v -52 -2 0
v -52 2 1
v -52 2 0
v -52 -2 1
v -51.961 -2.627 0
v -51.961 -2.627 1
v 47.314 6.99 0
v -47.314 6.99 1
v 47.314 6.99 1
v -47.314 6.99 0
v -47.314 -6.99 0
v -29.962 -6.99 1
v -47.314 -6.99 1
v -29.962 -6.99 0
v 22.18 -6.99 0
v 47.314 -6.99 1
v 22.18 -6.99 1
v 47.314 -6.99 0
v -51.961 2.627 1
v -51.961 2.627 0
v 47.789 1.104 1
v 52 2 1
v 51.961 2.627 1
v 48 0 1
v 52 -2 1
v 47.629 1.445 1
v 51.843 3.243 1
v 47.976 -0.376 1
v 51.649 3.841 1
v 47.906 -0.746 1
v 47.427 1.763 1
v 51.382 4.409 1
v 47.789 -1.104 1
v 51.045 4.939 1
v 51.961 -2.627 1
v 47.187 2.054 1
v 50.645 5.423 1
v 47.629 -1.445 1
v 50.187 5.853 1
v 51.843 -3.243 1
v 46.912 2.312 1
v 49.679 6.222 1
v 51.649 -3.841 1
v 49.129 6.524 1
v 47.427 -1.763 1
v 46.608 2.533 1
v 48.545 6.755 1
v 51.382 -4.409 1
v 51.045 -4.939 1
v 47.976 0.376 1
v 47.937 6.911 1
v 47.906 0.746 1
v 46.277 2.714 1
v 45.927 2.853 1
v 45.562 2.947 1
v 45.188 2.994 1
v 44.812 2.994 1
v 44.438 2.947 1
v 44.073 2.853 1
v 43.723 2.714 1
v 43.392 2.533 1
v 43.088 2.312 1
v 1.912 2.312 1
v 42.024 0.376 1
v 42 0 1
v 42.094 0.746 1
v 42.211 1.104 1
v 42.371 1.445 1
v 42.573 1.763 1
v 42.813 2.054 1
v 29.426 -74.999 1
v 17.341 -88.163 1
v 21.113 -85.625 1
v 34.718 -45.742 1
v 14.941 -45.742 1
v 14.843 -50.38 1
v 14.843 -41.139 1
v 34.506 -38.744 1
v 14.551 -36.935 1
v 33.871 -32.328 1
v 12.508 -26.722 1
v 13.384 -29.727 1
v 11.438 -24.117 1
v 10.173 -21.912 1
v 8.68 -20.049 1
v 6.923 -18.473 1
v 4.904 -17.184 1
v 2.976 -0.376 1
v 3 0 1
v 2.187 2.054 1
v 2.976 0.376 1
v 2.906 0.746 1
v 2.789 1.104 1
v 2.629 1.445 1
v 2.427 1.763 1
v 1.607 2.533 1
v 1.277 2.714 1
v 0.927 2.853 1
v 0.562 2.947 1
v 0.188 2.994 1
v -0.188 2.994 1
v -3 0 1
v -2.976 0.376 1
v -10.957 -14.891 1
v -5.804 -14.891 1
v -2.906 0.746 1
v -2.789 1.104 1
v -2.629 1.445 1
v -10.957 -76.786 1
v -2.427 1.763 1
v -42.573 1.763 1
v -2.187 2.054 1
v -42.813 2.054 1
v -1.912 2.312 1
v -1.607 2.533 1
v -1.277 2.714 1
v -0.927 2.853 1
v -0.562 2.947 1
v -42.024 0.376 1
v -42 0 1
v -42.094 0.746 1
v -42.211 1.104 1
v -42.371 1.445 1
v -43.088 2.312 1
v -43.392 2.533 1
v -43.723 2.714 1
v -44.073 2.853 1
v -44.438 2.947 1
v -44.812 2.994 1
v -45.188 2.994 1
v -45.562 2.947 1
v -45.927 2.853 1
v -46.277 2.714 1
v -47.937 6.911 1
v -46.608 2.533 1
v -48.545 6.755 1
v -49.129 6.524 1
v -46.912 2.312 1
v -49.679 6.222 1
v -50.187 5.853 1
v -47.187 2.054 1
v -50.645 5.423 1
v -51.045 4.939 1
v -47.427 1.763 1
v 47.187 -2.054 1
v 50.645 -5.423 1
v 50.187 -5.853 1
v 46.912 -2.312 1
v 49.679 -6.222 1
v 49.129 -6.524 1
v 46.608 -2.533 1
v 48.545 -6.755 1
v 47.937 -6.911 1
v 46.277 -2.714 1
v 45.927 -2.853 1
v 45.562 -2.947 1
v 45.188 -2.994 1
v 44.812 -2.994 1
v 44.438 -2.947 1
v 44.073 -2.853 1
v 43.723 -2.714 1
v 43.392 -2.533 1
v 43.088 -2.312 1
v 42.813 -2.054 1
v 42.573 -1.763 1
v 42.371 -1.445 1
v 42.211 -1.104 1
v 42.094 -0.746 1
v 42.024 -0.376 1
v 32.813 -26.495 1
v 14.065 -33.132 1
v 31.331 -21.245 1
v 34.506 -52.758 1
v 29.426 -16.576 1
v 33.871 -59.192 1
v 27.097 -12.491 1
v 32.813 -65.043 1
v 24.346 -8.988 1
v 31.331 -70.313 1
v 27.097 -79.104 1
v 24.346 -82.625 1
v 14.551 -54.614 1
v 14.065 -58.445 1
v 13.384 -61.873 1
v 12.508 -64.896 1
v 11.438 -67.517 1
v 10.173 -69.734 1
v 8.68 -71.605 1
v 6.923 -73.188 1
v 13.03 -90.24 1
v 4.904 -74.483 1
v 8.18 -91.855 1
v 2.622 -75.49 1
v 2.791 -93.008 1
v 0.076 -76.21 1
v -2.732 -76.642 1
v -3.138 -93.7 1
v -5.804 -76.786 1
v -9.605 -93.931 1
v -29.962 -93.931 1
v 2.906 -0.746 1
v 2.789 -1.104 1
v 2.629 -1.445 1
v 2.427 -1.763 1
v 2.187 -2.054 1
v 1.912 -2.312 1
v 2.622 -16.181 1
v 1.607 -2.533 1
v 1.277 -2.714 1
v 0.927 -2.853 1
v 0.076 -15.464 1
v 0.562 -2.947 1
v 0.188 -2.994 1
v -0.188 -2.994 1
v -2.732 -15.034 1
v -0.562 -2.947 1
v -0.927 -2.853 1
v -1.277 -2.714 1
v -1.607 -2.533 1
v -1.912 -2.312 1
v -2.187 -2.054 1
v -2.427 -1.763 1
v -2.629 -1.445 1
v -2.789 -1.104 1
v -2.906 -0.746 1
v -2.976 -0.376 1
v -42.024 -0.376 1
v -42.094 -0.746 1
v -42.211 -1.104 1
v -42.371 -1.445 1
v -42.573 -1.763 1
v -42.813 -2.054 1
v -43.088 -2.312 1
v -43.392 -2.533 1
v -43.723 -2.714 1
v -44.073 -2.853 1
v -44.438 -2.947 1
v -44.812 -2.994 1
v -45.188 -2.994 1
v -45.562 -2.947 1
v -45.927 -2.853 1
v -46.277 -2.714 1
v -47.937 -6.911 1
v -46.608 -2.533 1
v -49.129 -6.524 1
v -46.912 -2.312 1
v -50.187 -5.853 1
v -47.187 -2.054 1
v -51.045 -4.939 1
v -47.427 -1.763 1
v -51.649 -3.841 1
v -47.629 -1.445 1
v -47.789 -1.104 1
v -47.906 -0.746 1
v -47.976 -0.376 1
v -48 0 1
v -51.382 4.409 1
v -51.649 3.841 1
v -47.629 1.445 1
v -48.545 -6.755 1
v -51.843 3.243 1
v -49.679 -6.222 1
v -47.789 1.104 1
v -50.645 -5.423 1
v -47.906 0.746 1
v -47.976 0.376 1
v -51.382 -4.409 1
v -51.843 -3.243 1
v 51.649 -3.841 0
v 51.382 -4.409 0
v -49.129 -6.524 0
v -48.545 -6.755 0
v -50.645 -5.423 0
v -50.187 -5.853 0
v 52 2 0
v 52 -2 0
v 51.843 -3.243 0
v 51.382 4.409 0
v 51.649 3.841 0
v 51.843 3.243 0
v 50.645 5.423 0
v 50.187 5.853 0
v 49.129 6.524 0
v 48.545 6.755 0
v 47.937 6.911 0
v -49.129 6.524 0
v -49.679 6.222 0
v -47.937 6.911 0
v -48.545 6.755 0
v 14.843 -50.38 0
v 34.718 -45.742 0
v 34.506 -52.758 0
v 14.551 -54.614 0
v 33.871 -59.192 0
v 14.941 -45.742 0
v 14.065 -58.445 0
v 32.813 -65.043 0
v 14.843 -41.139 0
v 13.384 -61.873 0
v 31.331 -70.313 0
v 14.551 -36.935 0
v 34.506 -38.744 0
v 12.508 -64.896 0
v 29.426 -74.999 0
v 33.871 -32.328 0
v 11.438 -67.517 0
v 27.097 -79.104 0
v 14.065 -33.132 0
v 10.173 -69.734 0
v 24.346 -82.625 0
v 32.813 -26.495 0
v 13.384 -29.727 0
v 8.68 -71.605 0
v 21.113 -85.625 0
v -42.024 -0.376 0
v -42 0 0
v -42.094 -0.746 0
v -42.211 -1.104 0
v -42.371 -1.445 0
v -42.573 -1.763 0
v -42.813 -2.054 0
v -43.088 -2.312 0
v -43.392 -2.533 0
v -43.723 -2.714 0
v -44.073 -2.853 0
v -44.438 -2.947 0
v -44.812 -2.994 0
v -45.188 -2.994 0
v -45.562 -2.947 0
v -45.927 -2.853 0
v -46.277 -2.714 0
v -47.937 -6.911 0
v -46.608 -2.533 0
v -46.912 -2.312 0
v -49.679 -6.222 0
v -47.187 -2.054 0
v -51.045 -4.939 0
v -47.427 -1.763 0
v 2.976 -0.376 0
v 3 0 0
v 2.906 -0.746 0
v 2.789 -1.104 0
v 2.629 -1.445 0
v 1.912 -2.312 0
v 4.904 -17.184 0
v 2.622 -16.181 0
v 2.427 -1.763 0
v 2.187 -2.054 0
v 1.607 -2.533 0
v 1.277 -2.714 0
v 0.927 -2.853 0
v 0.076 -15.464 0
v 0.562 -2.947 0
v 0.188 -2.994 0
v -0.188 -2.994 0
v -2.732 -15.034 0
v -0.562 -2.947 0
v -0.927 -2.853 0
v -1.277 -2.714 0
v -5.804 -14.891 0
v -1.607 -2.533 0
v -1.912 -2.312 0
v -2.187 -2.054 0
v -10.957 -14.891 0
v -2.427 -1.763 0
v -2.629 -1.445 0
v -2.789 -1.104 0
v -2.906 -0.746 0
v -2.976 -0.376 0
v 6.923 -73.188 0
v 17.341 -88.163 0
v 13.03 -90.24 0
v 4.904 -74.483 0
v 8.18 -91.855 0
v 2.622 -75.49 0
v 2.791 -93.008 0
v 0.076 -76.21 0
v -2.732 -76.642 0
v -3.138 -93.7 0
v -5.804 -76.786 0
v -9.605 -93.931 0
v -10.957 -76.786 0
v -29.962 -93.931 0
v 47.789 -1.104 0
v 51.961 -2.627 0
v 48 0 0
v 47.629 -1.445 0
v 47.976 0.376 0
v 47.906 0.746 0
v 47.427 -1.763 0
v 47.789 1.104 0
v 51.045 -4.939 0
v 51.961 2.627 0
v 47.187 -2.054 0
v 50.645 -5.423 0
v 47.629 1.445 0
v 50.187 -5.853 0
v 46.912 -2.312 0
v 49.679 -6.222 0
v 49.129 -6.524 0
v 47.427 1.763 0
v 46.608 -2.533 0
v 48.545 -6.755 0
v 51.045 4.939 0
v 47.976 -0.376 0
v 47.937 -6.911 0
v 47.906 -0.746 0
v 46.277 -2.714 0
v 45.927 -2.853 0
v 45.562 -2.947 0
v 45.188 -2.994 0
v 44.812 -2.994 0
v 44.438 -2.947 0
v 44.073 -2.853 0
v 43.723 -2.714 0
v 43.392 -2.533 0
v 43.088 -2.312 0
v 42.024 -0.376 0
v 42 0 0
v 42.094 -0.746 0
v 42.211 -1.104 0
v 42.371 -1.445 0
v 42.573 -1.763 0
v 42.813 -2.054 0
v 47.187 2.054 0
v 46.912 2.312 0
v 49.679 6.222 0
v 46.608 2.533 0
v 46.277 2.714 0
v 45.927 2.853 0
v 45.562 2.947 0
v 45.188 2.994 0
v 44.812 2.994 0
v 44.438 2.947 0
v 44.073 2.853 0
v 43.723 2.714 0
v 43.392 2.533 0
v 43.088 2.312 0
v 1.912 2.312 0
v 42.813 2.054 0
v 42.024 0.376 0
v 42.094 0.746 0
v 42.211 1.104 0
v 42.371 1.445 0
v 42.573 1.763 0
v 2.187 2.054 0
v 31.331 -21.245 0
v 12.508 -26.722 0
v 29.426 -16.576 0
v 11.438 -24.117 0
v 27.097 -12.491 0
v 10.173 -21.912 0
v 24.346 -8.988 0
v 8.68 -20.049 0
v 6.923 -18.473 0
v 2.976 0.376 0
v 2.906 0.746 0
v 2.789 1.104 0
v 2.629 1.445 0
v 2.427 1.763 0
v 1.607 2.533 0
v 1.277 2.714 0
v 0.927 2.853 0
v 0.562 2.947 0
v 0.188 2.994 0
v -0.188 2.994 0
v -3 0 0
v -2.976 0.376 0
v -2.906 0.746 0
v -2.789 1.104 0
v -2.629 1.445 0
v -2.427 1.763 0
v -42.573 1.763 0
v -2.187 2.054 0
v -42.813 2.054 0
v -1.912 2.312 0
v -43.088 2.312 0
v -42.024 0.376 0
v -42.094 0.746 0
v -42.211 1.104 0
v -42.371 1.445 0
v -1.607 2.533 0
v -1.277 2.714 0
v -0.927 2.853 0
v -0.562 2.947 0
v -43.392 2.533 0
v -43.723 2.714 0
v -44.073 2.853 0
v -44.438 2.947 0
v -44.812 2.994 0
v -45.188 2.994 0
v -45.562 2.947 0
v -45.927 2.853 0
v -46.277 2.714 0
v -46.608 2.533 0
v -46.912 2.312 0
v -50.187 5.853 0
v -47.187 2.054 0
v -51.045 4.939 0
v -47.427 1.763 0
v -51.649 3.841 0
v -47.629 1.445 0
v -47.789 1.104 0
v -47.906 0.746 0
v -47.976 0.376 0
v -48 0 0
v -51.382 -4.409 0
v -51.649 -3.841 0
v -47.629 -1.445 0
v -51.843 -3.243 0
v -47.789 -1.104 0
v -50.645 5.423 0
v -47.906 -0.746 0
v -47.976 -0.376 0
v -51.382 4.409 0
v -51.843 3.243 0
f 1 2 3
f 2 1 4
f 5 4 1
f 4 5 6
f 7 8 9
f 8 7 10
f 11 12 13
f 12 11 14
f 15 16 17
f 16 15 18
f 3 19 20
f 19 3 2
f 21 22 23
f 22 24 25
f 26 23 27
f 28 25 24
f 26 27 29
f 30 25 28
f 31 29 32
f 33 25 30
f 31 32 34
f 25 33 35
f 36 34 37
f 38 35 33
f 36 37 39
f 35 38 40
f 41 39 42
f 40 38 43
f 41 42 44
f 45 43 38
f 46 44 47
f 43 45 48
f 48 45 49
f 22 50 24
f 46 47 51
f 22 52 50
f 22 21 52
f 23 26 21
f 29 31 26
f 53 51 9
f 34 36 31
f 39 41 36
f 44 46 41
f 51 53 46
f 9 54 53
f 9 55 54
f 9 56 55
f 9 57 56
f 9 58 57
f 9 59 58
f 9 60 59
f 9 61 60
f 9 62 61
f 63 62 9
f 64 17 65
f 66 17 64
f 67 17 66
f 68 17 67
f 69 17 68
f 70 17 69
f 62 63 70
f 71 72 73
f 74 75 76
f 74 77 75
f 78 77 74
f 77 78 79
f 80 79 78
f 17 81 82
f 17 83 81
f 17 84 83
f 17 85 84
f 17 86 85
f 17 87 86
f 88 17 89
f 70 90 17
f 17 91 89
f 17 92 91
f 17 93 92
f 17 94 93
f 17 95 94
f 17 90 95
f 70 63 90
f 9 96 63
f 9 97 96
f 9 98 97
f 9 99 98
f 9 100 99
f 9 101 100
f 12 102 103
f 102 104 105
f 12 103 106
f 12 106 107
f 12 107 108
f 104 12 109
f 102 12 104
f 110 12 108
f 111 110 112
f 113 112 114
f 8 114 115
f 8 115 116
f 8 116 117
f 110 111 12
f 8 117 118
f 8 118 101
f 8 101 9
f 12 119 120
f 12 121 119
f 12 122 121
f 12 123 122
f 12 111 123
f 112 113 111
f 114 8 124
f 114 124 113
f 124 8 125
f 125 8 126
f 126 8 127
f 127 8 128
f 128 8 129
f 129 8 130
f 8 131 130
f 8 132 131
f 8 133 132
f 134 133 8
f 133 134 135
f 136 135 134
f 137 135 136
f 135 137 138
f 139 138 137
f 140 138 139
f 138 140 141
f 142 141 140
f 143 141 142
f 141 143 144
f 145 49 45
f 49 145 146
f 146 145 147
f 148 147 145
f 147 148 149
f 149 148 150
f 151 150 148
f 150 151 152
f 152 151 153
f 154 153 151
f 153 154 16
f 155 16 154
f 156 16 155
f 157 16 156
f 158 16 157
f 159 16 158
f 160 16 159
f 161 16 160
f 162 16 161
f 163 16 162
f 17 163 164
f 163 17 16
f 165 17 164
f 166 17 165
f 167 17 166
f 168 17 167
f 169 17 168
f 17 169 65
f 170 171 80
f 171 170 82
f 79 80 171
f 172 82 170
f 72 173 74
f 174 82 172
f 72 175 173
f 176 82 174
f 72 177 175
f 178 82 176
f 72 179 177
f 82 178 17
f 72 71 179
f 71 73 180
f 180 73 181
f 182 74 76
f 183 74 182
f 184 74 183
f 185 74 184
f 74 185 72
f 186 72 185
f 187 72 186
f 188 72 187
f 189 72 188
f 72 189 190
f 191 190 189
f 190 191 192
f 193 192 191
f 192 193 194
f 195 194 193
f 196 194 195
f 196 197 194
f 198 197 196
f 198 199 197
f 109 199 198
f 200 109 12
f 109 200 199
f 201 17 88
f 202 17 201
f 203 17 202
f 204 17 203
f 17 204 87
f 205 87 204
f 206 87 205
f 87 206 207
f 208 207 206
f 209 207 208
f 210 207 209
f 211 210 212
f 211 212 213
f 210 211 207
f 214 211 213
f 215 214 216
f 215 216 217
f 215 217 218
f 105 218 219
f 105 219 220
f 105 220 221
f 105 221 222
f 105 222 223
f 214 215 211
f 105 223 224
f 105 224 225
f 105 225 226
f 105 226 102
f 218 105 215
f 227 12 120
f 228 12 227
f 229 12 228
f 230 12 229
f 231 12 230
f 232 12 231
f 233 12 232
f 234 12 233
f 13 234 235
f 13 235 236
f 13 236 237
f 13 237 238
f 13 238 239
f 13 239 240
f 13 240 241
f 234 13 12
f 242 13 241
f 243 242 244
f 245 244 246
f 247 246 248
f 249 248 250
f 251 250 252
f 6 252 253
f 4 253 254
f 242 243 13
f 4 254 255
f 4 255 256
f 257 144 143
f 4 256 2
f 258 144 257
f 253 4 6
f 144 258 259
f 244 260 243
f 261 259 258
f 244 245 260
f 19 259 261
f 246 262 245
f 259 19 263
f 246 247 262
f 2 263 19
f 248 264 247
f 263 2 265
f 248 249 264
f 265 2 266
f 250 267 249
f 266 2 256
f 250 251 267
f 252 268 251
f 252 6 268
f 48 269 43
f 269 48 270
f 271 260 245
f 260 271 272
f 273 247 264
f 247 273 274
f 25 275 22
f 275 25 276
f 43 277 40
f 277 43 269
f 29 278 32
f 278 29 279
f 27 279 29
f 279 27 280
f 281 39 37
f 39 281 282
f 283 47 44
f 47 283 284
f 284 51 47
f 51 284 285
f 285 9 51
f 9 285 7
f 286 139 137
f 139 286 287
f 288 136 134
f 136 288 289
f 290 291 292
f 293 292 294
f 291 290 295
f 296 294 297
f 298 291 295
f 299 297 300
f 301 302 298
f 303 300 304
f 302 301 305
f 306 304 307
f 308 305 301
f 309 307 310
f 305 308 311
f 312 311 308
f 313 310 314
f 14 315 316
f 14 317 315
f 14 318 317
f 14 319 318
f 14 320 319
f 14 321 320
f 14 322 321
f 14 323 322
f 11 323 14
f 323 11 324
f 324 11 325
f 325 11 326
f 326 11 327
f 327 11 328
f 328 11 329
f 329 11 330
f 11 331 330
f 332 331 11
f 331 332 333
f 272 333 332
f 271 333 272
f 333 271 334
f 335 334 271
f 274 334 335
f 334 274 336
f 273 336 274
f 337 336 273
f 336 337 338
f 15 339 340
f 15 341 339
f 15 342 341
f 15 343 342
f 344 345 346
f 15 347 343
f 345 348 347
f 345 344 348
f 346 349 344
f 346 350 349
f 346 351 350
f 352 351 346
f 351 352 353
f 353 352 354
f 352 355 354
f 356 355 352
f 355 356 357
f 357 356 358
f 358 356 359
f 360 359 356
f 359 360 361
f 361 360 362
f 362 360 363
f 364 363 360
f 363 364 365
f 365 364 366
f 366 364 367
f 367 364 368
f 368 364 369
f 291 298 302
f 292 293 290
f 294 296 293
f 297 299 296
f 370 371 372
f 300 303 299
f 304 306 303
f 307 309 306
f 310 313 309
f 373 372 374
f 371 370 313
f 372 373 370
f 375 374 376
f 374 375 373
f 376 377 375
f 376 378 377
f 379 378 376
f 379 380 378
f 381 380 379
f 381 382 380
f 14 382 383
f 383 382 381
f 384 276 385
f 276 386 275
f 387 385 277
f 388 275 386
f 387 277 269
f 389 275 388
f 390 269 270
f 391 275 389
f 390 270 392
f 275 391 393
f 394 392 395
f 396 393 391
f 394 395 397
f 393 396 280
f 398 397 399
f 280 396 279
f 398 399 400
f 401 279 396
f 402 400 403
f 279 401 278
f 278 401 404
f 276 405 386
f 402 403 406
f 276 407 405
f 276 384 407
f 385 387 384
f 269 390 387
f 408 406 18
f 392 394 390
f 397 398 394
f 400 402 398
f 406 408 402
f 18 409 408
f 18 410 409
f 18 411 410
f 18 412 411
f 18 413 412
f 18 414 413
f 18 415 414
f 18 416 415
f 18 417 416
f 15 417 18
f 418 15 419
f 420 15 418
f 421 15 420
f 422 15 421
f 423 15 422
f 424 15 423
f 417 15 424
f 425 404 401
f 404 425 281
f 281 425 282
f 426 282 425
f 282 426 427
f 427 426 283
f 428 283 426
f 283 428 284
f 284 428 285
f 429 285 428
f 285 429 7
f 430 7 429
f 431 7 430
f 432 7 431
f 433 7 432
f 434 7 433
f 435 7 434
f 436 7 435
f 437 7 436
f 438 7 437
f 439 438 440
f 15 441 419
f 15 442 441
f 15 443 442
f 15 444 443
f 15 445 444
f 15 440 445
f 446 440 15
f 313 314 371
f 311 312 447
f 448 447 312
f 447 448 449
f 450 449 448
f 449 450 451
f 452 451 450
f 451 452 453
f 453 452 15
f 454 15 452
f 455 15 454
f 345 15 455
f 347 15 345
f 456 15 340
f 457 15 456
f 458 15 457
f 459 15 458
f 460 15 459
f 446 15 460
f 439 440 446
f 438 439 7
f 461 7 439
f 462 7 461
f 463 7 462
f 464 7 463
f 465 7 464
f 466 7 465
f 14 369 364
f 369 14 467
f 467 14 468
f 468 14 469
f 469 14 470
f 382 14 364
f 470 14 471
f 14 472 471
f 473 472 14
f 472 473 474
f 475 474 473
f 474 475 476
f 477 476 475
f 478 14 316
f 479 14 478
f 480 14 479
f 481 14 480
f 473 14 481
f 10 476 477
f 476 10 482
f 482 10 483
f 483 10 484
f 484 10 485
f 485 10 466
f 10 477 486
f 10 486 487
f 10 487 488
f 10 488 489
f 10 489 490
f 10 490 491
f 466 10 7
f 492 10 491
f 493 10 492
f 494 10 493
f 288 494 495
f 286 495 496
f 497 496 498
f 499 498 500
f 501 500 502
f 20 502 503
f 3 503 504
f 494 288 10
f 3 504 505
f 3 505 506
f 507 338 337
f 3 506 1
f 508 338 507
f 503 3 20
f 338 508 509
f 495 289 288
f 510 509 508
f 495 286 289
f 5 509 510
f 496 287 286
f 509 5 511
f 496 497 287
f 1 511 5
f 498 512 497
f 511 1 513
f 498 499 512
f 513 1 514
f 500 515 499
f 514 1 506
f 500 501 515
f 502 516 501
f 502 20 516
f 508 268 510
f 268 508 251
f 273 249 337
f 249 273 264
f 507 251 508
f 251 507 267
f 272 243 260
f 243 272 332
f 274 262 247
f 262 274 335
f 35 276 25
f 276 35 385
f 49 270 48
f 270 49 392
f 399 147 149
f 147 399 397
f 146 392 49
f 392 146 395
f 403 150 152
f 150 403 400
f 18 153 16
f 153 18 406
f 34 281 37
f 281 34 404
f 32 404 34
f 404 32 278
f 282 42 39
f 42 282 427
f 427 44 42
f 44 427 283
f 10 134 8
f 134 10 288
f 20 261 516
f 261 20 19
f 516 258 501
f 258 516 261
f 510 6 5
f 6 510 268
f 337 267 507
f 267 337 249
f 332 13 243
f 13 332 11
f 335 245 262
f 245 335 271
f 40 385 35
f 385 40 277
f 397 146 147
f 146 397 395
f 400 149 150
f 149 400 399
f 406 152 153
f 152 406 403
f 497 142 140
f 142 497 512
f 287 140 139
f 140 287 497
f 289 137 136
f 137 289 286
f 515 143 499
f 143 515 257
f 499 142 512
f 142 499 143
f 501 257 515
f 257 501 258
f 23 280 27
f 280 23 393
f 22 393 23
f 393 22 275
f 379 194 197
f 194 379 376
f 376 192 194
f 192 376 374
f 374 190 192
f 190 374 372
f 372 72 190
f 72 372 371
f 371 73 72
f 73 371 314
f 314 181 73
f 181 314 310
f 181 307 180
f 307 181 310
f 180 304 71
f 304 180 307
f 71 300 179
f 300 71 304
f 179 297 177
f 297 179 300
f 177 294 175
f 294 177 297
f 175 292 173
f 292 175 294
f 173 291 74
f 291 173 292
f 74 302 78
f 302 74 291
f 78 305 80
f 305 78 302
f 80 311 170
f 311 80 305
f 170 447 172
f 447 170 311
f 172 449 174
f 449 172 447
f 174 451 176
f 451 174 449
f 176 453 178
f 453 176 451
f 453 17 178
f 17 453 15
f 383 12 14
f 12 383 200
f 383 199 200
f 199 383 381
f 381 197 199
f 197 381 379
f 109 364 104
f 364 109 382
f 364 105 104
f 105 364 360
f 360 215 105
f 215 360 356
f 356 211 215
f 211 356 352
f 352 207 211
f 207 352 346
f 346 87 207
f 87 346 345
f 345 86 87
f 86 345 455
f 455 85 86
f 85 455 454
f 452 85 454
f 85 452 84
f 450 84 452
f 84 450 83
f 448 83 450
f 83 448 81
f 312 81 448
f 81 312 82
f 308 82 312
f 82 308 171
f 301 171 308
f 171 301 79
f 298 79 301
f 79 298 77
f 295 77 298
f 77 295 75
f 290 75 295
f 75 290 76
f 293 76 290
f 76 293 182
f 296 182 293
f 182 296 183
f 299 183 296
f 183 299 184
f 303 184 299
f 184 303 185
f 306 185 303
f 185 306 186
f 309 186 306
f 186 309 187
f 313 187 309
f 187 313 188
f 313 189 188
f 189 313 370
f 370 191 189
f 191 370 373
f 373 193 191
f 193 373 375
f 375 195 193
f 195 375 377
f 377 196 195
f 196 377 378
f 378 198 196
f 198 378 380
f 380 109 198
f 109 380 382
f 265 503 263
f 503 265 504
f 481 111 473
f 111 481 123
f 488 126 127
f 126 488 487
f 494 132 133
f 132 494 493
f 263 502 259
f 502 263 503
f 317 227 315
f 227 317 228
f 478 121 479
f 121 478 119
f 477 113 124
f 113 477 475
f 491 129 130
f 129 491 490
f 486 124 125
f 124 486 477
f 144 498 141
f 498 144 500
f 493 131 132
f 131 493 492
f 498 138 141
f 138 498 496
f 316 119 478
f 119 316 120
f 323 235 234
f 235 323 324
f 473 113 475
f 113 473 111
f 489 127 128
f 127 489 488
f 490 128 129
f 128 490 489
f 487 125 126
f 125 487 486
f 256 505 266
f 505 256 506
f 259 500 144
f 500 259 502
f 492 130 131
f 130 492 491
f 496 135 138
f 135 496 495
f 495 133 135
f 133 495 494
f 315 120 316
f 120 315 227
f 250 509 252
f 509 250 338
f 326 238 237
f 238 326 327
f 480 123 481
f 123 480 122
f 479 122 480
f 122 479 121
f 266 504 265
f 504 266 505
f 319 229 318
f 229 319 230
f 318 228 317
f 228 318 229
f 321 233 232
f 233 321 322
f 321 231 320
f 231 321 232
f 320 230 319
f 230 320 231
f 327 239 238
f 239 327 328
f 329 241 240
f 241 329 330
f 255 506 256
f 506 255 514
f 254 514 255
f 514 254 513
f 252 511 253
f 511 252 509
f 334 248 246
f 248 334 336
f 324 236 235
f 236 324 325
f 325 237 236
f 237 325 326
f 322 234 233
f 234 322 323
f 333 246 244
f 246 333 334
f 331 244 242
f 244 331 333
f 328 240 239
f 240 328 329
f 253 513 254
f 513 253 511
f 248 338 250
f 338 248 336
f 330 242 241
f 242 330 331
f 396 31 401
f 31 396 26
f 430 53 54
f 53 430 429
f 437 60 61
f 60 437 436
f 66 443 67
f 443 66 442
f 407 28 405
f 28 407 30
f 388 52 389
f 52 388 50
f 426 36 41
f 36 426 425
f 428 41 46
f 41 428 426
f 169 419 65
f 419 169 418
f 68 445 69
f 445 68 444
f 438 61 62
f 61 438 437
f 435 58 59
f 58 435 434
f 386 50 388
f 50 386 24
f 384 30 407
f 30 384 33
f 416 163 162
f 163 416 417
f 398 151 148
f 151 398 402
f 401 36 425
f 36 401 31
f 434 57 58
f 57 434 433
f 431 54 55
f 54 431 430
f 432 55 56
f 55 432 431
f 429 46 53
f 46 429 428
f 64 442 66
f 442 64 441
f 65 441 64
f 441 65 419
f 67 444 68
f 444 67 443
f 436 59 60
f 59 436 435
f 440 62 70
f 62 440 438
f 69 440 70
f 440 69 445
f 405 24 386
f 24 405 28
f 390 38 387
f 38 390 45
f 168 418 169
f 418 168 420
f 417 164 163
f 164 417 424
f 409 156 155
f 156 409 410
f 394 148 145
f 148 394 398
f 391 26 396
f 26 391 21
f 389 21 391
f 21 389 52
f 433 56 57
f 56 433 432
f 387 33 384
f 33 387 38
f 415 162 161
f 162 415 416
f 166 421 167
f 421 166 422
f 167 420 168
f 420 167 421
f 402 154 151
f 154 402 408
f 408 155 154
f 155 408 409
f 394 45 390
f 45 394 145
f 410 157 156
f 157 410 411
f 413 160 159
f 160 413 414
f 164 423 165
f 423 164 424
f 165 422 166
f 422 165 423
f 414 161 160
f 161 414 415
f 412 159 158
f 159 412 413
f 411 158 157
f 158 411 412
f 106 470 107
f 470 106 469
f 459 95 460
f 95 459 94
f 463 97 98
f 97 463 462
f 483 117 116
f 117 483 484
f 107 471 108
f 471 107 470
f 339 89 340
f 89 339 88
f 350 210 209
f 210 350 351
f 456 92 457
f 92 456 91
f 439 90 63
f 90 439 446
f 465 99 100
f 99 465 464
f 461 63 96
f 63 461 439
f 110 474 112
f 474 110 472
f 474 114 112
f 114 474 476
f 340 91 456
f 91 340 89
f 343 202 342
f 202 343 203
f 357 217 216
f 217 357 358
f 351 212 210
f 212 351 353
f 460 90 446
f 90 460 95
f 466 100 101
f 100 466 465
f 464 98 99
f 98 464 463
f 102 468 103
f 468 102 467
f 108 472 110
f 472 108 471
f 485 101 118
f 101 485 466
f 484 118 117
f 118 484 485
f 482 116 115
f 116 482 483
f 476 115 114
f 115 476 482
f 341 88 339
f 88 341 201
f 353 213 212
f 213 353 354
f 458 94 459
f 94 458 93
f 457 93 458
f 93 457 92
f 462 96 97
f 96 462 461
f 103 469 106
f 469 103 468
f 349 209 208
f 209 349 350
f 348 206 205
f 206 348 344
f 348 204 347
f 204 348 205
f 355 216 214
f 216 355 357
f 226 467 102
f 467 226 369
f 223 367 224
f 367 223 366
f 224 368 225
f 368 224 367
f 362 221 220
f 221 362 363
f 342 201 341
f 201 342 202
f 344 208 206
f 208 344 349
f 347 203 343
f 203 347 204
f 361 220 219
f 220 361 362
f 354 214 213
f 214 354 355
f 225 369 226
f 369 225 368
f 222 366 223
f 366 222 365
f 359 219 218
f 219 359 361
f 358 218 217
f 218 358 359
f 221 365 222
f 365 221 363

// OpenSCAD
$fn = 50;


difference() {
	union() {
		translate(v = [0, 0, 0]) {
			rotate(a = [0, 0, 0]) {
				hull() {
					translate(v = [-47.0000000000, 2.0000000000, 0]) {
						rotate(a = [0, 0, 0]) {
							translate(v = [0, 0, 0]) {
								rotate(a = [0, 0, 0]) {
									cylinder(h = 1, r = 5);
								}
							}
						}
					}
					translate(v = [47.0000000000, 2.0000000000, 0]) {
						rotate(a = [0, 0, 0]) {
							translate(v = [0, 0, 0]) {
								rotate(a = [0, 0, 0]) {
									cylinder(h = 1, r = 5);
								}
							}
						}
					}
					translate(v = [-47.0000000000, -2.0000000000, 0]) {
						rotate(a = [0, 0, 0]) {
							translate(v = [0, 0, 0]) {
								rotate(a = [0, 0, 0]) {
									cylinder(h = 1, r = 5);
								}
							}
						}
					}
					translate(v = [47.0000000000, -2.0000000000, 0]) {
						rotate(a = [0, 0, 0]) {
							translate(v = [0, 0, 0]) {
								rotate(a = [0, 0, 0]) {
									cylinder(h = 1, r = 5);
								}
							}
						}
					}
				}
			}
		}
		translate(v = [0, 0, 0]) {
			rotate(a = [0, 0, 0]) {
				linear_extrude(height = 1) {
					text(font = "DejaVu Sans Mono:style=Bold", halign = "center", size = 95.0000000000, text = "D", valign = "top");
				}
			}
		}
	}
	union() {
		translate(v = [-45.0000000000, 0.0000000000, -125.0000000000]) {
			rotate(a = [0, 0, 0]) {
				cylinder(h = 250, r = 3.0000000000);
			}
		}
		translate(v = [45.0000000000, 0.0000000000, -125.0000000000]) {
			rotate(a = [0, 0, 0]) {
				cylinder(h = 250, r = 3.0000000000);
			}
		}
		translate(v = [45.0000000000, 0.0000000000, -125.0000000000]) {
			rotate(a = [0, 0, 0]) {
				cylinder(h = 250, r = 3.0000000000);
			}
		}
		translate(v = [0, 0, -125.0000000000]) {
			rotate(a = [0, 0, 0]) {
				cylinder(h = 250, r = 3.0000000000);
			}
		}
	}
}
